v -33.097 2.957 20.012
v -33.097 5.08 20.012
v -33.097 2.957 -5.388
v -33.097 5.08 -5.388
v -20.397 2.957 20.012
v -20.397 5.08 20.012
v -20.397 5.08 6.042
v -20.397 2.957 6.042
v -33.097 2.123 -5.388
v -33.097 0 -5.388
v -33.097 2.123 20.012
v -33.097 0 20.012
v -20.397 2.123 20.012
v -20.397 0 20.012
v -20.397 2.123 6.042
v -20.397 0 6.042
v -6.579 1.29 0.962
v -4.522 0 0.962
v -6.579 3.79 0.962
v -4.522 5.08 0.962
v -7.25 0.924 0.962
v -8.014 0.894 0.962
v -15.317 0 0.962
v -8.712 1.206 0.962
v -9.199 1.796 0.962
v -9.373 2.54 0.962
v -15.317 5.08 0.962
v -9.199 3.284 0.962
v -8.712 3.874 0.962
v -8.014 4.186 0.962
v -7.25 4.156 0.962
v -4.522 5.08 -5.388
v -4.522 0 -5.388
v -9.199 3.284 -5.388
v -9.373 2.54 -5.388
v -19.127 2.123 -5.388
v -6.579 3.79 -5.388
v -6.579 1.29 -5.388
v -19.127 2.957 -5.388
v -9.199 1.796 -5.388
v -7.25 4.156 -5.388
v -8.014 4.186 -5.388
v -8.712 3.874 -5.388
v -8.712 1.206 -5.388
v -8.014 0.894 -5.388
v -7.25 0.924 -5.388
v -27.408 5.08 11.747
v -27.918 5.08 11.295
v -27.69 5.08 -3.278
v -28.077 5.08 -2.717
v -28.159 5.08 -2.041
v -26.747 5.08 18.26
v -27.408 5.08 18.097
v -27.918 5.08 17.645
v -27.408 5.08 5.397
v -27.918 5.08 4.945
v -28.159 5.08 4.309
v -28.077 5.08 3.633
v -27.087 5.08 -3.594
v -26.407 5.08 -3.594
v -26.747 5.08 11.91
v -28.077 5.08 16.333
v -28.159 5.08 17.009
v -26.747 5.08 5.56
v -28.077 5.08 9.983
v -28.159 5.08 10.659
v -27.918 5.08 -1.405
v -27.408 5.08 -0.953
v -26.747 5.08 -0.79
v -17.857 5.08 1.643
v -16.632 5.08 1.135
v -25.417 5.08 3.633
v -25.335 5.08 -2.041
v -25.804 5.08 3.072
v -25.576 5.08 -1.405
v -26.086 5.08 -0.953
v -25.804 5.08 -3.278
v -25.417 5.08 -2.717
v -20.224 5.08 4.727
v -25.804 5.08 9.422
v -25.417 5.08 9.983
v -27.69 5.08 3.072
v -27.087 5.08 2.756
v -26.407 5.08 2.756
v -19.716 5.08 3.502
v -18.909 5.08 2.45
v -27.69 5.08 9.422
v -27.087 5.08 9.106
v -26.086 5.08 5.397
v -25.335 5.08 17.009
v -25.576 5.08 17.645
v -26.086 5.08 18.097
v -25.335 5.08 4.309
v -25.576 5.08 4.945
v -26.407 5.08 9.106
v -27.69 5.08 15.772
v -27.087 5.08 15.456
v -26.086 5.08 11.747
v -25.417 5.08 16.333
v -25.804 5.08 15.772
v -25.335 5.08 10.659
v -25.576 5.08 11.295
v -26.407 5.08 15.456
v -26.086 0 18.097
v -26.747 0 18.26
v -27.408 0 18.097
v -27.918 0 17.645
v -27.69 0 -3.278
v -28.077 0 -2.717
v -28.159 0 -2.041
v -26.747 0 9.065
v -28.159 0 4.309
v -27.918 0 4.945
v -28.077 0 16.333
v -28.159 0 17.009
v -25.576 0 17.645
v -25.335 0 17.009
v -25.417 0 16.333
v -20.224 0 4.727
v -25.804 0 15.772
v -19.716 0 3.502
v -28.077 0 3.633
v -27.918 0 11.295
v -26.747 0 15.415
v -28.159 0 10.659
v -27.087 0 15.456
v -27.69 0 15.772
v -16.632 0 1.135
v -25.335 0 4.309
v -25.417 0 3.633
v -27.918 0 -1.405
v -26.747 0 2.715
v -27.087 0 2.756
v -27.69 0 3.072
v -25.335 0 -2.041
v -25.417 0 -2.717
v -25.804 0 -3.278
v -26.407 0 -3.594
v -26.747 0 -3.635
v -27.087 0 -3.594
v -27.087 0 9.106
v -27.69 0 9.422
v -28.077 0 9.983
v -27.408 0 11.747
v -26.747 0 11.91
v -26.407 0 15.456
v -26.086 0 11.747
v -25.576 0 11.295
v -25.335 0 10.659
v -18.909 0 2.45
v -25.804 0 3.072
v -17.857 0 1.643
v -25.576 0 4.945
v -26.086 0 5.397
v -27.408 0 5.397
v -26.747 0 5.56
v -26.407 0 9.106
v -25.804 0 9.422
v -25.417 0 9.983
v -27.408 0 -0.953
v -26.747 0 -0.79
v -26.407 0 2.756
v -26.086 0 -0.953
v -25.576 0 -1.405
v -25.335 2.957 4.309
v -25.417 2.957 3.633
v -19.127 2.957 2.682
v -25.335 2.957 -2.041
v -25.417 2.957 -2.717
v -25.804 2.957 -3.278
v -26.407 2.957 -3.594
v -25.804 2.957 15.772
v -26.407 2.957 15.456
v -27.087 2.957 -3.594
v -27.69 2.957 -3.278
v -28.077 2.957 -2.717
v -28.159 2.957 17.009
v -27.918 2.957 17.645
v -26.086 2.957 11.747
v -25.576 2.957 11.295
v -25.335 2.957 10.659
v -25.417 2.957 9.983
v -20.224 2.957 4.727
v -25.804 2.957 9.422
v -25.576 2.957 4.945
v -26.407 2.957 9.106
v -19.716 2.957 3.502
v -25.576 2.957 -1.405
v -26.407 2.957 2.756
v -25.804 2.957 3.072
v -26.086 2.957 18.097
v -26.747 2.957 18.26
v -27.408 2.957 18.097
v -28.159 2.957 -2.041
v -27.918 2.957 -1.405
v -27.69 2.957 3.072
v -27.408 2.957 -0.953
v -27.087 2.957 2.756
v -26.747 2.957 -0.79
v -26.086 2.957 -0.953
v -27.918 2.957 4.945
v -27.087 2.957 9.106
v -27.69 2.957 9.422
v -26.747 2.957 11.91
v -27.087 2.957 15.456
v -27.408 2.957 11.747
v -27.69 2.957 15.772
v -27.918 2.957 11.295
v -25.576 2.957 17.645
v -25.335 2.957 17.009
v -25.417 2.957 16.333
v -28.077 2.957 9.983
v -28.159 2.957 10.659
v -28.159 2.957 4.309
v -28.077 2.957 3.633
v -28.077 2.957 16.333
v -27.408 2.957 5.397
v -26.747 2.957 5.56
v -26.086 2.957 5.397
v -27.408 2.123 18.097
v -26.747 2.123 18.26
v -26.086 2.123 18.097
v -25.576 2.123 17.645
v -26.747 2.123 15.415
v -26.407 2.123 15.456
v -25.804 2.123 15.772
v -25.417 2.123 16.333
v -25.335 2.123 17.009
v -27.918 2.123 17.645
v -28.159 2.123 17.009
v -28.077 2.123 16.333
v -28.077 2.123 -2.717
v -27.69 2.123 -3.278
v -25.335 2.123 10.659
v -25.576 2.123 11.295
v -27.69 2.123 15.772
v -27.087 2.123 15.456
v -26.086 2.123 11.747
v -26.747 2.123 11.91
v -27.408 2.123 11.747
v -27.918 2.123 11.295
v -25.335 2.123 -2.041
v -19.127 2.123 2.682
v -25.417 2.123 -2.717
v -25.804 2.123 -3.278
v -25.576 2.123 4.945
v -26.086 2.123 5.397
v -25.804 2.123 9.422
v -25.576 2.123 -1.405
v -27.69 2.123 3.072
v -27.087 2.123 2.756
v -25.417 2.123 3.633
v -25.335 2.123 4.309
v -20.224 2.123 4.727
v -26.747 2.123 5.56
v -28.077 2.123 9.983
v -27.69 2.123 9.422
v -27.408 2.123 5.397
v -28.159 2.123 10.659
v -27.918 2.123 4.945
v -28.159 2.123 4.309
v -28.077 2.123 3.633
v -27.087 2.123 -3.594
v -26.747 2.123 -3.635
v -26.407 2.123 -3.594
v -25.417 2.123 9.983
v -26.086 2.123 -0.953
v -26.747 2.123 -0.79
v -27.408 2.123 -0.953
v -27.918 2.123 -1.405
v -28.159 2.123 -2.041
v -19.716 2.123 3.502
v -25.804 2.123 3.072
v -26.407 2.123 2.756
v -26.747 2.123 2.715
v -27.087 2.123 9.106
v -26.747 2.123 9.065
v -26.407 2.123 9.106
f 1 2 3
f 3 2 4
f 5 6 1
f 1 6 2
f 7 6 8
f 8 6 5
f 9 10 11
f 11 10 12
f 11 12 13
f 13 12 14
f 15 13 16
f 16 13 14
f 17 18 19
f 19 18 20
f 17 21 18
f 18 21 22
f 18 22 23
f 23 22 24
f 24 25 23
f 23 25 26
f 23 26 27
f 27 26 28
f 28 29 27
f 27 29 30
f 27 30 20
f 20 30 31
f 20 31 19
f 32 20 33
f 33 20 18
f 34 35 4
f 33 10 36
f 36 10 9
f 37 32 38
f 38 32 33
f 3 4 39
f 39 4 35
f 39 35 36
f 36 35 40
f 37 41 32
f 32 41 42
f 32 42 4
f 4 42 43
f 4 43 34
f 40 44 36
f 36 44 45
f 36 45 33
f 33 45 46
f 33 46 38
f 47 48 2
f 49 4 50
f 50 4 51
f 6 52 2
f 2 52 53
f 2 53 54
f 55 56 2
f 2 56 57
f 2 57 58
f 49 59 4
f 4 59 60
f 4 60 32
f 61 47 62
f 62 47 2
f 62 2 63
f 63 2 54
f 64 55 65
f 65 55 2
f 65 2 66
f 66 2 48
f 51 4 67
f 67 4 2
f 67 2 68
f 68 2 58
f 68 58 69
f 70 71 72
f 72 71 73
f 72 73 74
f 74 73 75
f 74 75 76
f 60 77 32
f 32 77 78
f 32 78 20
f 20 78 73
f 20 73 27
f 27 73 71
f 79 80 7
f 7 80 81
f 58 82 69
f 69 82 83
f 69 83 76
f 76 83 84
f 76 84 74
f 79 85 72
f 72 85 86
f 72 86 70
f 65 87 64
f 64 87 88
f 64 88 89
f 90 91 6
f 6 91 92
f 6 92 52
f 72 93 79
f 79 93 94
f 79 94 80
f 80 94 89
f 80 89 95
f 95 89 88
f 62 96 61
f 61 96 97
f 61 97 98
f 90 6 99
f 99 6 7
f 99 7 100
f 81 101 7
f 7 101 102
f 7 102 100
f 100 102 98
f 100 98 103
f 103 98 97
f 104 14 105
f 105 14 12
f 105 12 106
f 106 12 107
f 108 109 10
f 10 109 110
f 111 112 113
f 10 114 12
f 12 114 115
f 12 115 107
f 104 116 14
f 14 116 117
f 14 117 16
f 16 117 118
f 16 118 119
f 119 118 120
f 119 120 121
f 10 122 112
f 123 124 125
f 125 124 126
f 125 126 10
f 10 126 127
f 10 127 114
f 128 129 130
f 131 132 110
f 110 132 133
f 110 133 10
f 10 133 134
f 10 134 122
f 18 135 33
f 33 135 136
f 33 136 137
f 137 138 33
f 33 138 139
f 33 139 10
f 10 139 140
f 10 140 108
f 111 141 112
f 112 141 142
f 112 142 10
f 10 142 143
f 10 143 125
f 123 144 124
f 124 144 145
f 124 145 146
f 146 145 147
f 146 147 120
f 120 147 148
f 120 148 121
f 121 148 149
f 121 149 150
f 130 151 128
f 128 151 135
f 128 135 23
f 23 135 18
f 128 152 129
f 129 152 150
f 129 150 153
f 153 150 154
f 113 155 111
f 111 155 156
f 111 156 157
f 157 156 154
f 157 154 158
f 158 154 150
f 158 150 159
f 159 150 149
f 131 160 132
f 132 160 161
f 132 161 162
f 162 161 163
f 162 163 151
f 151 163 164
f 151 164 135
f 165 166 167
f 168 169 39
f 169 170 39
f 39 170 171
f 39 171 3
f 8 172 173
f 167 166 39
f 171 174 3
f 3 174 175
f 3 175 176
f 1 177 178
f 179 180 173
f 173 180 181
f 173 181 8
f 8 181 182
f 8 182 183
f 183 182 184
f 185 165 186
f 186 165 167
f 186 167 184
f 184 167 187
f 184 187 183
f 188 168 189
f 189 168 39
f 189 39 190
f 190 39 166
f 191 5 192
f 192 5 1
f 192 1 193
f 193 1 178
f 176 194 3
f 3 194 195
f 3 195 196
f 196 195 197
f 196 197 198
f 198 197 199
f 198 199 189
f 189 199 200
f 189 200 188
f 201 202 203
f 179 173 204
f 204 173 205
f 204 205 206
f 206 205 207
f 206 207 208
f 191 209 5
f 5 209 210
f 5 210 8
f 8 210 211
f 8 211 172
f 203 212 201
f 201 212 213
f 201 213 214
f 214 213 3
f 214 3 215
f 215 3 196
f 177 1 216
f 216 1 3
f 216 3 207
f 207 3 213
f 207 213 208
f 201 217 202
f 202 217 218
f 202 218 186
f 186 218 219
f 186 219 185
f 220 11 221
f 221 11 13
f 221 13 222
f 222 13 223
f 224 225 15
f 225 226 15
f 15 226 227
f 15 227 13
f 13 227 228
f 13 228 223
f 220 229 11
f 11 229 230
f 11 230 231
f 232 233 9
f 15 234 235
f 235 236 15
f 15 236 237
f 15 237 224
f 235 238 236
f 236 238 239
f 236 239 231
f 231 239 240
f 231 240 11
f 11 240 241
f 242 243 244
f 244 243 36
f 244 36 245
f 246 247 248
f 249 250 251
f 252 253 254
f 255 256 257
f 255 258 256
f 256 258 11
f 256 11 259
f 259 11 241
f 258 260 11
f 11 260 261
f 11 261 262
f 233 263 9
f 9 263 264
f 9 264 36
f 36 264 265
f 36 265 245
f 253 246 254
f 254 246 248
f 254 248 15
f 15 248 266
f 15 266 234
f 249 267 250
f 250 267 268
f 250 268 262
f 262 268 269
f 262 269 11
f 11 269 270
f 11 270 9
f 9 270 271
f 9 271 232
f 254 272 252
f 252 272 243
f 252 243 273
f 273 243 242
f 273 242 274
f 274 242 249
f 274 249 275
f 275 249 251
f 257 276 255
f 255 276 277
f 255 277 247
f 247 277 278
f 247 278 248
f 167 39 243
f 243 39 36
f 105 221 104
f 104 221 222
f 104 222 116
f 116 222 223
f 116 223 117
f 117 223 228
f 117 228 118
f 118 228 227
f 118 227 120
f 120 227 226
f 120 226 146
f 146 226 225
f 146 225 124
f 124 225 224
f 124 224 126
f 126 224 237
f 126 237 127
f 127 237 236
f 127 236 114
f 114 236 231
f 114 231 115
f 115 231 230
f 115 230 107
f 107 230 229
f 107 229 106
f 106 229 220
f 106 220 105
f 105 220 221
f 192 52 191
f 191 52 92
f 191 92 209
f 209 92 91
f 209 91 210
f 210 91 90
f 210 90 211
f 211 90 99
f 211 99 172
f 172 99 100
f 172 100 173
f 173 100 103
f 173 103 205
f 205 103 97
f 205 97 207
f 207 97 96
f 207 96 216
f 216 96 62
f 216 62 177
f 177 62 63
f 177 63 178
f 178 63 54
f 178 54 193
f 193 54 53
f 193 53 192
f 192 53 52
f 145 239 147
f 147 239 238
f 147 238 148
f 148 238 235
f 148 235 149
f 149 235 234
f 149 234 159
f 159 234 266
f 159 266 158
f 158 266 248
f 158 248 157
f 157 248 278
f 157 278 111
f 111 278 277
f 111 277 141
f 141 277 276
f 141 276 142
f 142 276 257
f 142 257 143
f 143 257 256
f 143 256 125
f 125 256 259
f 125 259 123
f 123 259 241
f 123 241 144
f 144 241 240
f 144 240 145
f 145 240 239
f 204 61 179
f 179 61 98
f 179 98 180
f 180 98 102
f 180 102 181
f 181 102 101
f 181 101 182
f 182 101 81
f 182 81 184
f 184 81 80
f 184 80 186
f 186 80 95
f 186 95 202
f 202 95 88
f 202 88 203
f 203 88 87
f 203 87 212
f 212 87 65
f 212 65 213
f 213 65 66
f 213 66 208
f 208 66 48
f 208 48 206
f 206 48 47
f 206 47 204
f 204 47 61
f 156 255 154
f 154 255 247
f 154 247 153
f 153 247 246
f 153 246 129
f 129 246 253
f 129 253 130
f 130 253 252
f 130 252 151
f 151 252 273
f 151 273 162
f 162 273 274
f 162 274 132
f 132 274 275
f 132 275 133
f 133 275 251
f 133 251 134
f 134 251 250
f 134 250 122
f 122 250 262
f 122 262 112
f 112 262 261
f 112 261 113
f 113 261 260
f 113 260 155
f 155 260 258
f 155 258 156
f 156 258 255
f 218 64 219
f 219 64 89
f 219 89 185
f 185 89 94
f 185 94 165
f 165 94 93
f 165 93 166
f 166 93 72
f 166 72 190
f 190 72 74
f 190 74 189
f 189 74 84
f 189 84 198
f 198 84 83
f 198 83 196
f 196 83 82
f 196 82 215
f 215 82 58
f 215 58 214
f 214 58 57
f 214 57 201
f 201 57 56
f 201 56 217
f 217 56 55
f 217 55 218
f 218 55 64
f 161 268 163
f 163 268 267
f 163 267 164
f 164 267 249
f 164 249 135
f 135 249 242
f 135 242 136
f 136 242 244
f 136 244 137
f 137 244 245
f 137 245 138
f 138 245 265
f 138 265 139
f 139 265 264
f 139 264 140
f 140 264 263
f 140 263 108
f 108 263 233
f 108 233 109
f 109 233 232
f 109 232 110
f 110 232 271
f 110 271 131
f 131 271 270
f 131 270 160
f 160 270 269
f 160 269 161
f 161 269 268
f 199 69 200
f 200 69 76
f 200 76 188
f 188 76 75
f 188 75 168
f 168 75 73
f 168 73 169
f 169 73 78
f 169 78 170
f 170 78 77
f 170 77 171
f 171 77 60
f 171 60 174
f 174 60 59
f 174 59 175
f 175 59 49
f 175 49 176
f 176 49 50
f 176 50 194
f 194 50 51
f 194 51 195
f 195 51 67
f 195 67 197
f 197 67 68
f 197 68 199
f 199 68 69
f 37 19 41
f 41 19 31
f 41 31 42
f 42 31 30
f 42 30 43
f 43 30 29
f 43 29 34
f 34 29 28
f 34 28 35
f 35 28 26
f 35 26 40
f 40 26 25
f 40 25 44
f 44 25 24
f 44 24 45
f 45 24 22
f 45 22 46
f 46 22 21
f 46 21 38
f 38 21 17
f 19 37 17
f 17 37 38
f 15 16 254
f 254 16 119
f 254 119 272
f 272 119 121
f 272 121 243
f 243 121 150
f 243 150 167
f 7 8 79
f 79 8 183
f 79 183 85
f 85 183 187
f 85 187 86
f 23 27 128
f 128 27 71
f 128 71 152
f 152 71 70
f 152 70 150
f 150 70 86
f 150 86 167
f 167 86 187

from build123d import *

# Parameters (mm, degrees)
BOSS_EXTRUDE1_DEPTH = 5.08
SKETCH2_W           = 25.4
SKETCH2_H           = 0.8334375
CUT_EXTRUDE1_DEPTH  = 13.97
SKETCH3_R           = 1.4224
CUT_EXTRUDE2_DEPTH  = 12.7
CUT_EXTRUDE3_DEPTH  = 12.7
FILLET3_R           = 5.08


with BuildPart() as part:
    # Sketch1 → Boss-Extrude1 (new body)
    with BuildSketch(Plane(origin=(0, 0, 0), x_dir=(1, 0, 0), z_dir=(0, 1, 0))):
        Polygon((-33.096969697, 5.387878788), (-20.396969697, 5.387878788), (-4.521969697, 5.387878788), (-4.521969697, -0.962121212), (-20.396969697, -0.962121212), (-20.396969697, -20.012121212), (-33.096969697, -20.012121212), align=None)
    extrude(amount=BOSS_EXTRUDE1_DEPTH)

    # Sketch2 → Cut-Extrude1 (cut)
    with BuildSketch(Plane.ZY.offset(33.096969697)):
        with Locations((7.312121212, 2.54)):
            Rectangle(SKETCH2_W, SKETCH2_H)
    extrude(amount=-CUT_EXTRUDE1_DEPTH, mode=Mode.SUBTRACT)

    # Sketch3 → Cut-Extrude2 (cut)
    with BuildSketch(Plane(origin=(0, 5.08, 0), x_dir=(1, 0, 0), z_dir=(0, 1, 0))):
        with Locations(Location((-26.746969697, -16.837121212, 0), (0, 0, 90))):
            Circle(SKETCH3_R)
        with Locations(Location((-26.746969697, -10.487121212, 0), (0, 0, 90))):
            Circle(SKETCH3_R)
        with Locations(Location((-26.746969697, -4.137121212, 0), (0, 0, 90))):
            Circle(SKETCH3_R)
        with Locations(Location((-26.746969697, 2.212878788, 0), (0, 0, 90))):
            Circle(SKETCH3_R)
    extrude(amount=-CUT_EXTRUDE2_DEPTH, mode=Mode.SUBTRACT)

    # Sketch5 → Cut-Extrude3 (cut)
    with BuildSketch(Plane.XY.offset(0.962121212)):
        with BuildLine():
            Line((-6.579369697, 1.290485214), (-6.579369697, 3.789514786))
            ThreePointArc((-6.579369697, 3.789514786), (-9.373369697, 2.54), (-6.579369697, 1.290485214))
        make_face()
    extrude(amount=-CUT_EXTRUDE3_DEPTH, mode=Mode.SUBTRACT)

    # Fillet3
    # the kernel refuses this fillet: 5.08 mm, written as the material it adds along each edge
    with BuildSketch(Plane(origin=(-20.396969697, -9.74328125, 0.962121212), x_dir=(1, 0, 0), z_dir=(0, 1, 0))) as fillet3_piece_1_section:
        with BuildLine():
            CenterArc((FILLET3_R, -FILLET3_R), FILLET3_R, 90, 90)
            Line((0, -FILLET3_R), (0, 0))
            Line((0, 0), (FILLET3_R, 0))
        make_face()
    fillet3_piece_1 = extrude(amount=14.82328125, mode=Mode.PRIVATE)
    fillet3_piece_1 = split(fillet3_piece_1, bisect_by=Plane(origin=(-18.050290176, 0, 1.370319311), z_dir=(0, 1, 0)), keep=Keep.TOP, mode=Mode.PRIVATE)
    fillet3_piece_1 = split(fillet3_piece_1, bisect_by=Plane(origin=(-18.050290176, 2.12328125, 1.370319311), z_dir=(0, -1, 0)), keep=Keep.TOP, mode=Mode.PRIVATE)
    fillet3_piece_1 = split(fillet3_piece_1, bisect_by=Plane(origin=(-19.126969697, 1.061640625, 1.370319311), z_dir=(1, 0, 0)), keep=Keep.TOP, mode=Mode.PRIVATE)
    add(fillet3_piece_1)
    with BuildSketch(Plane(origin=(-20.396969697, -9.74328125, 0.962121212), x_dir=(1, 0, 0), z_dir=(0, 1, 0))) as fillet3_piece_2_section:
        with BuildLine():
            CenterArc((FILLET3_R, -FILLET3_R), FILLET3_R, 90, 90)
            Line((0, -FILLET3_R), (0, 0))
            Line((0, 0), (FILLET3_R, 0))
        make_face()
    fillet3_piece_2 = extrude(amount=14.82328125, mode=Mode.PRIVATE)
    fillet3_piece_2 = split(fillet3_piece_2, bisect_by=Plane(origin=(-19.932991251, 0, 2.537596858), z_dir=(0, 1, 0)), keep=Keep.TOP, mode=Mode.PRIVATE)
    fillet3_piece_2 = split(fillet3_piece_2, bisect_by=Plane(origin=(-19.932991251, 2.12328125, 2.537596858), z_dir=(0, -1, 0)), keep=Keep.TOP, mode=Mode.PRIVATE)
    fillet3_piece_2 = split(fillet3_piece_2, bisect_by=Plane(origin=(-19.126969697, 1.061640625, 2.537596858), z_dir=(-1, 0, 0)), keep=Keep.TOP, mode=Mode.PRIVATE)
    add(fillet3_piece_2)
    with BuildSketch(Plane(origin=(-20.396969697, -9.74328125, 0.962121212), x_dir=(1, 0, 0), z_dir=(0, 1, 0))) as fillet3_piece_3_section:
        with BuildLine():
            CenterArc((FILLET3_R, -FILLET3_R), FILLET3_R, 90, 90)
            Line((0, -FILLET3_R), (0, 0))
            Line((0, 0), (FILLET3_R, 0))
        make_face()
    fillet3_piece_3 = extrude(amount=14.82328125, mode=Mode.PRIVATE)
    fillet3_piece_3 = split(fillet3_piece_3, bisect_by=Plane(origin=(-18.050290176, 2.12328125, 1.370319311), z_dir=(0, 1, 0)), keep=Keep.TOP, mode=Mode.PRIVATE)
    fillet3_piece_3 = split(fillet3_piece_3, bisect_by=Plane(origin=(-19.126969697, 2.54, 1.370319311), z_dir=(1, 0, 0)), keep=Keep.TOP, mode=Mode.PRIVATE)
    fillet3_piece_3 = split(fillet3_piece_3, bisect_by=Plane(origin=(-18.050290176, 2.95671875, 1.370319311), z_dir=(0, -1, 0)), keep=Keep.TOP, mode=Mode.PRIVATE)
    add(fillet3_piece_3)
    with BuildSketch(Plane(origin=(-20.396969697, 2.95671875, 0.962121212), x_dir=(1, 0, 0), z_dir=(0, 1, 0))) as fillet3_piece_4_section:
        with BuildLine():
            CenterArc((FILLET3_R, -FILLET3_R), FILLET3_R, 90, 90)
            Line((0, -FILLET3_R), (0, 0))
            Line((0, 0), (FILLET3_R, 0))
        make_face()
    fillet3_piece_4 = extrude(amount=2.12328125, mode=Mode.PRIVATE)
    fillet3_piece_4 = split(fillet3_piece_4, bisect_by=Plane(origin=(-19.126969697, 4.018359375, 1.370319311), z_dir=(1, 0, 0)), keep=Keep.TOP, mode=Mode.PRIVATE)
    add(fillet3_piece_4)
    with BuildSketch(Plane(origin=(-20.396969697, 2.95671875, 0.962121212), x_dir=(1, 0, 0), z_dir=(0, 1, 0))) as fillet3_piece_5_section:
        with BuildLine():
            CenterArc((FILLET3_R, -FILLET3_R), FILLET3_R, 90, 90)
            Line((0, -FILLET3_R), (0, 0))
            Line((0, 0), (FILLET3_R, 0))
        make_face()
    fillet3_piece_5 = extrude(amount=2.12328125, mode=Mode.PRIVATE)
    fillet3_piece_5 = split(fillet3_piece_5, bisect_by=Plane(origin=(-19.126969697, 4.018359375, 2.537596858), z_dir=(-1, 0, 0)), keep=Keep.TOP, mode=Mode.PRIVATE)
    add(fillet3_piece_5)
    with BuildSketch(Plane(origin=(-20.396969697, 0, 0.962121212), x_dir=(1, 0, 0), z_dir=(0, 1, 0))) as fillet3_piece_6_section:
        with BuildLine():
            CenterArc((FILLET3_R, -FILLET3_R), FILLET3_R, 90, 90)
            Line((0, -FILLET3_R), (0, 0))
            Line((0, 0), (FILLET3_R, 0))
        make_face()
    fillet3_piece_6 = extrude(amount=2.12328125, mode=Mode.PRIVATE)
    fillet3_piece_6 = split(fillet3_piece_6, bisect_by=Plane(origin=(-19.126969697, 1.061640625, 1.370319311), z_dir=(1, 0, 0)), keep=Keep.TOP, mode=Mode.PRIVATE)
    add(fillet3_piece_6)
    with BuildSketch(Plane(origin=(-20.396969697, 0, 0.962121212), x_dir=(1, 0, 0), z_dir=(0, 1, 0))) as fillet3_piece_7_section:
        with BuildLine():
            CenterArc((FILLET3_R, -FILLET3_R), FILLET3_R, 90, 90)
            Line((0, -FILLET3_R), (0, 0))
            Line((0, 0), (FILLET3_R, 0))
        make_face()
    fillet3_piece_7 = extrude(amount=2.12328125, mode=Mode.PRIVATE)
    fillet3_piece_7 = split(fillet3_piece_7, bisect_by=Plane(origin=(-19.126969697, 1.061640625, 2.537596858), z_dir=(-1, 0, 0)), keep=Keep.TOP, mode=Mode.PRIVATE)
    add(fillet3_piece_7)
    with BuildSketch(Plane(origin=(-20.396969697, 0, 0.962121212), x_dir=(1, 0, 0), z_dir=(0, 1, 0))) as fillet3_piece_8_section:
        with BuildLine():
            CenterArc((FILLET3_R, -FILLET3_R), FILLET3_R, 90, 90)
            Line((0, -FILLET3_R), (0, 0))
            Line((0, 0), (FILLET3_R, 0))
        make_face()
    fillet3_piece_8 = extrude(amount=14.82328125, mode=Mode.PRIVATE)
    fillet3_piece_8 = split(fillet3_piece_8, bisect_by=Plane(origin=(-18.050290176, 2.12328125, 1.370319311), z_dir=(0, 1, 0)), keep=Keep.TOP, mode=Mode.PRIVATE)
    fillet3_piece_8 = split(fillet3_piece_8, bisect_by=Plane(origin=(-19.126969697, 2.54, 1.370319311), z_dir=(1, 0, 0)), keep=Keep.TOP, mode=Mode.PRIVATE)
    fillet3_piece_8 = split(fillet3_piece_8, bisect_by=Plane(origin=(-18.050290176, 2.95671875, 1.370319311), z_dir=(0, -1, 0)), keep=Keep.TOP, mode=Mode.PRIVATE)
    add(fillet3_piece_8)
    with BuildSketch(Plane(origin=(-20.396969697, 0, 0.962121212), x_dir=(1, 0, 0), z_dir=(0, 1, 0))) as fillet3_piece_9_section:
        with BuildLine():
            CenterArc((FILLET3_R, -FILLET3_R), FILLET3_R, 90, 90)
            Line((0, -FILLET3_R), (0, 0))
            Line((0, 0), (FILLET3_R, 0))
        make_face()
    fillet3_piece_9 = extrude(amount=14.82328125, mode=Mode.PRIVATE)
    fillet3_piece_9 = split(fillet3_piece_9, bisect_by=Plane(origin=(-18.050290176, 5.08, 1.370319311), z_dir=(0, -1, 0)), keep=Keep.TOP, mode=Mode.PRIVATE)
    fillet3_piece_9 = split(fillet3_piece_9, bisect_by=Plane(origin=(-19.126969697, 4.018359375, 1.370319311), z_dir=(1, 0, 0)), keep=Keep.TOP, mode=Mode.PRIVATE)
    fillet3_piece_9 = split(fillet3_piece_9, bisect_by=Plane(origin=(-18.050290176, 2.95671875, 1.370319311), z_dir=(0, 1, 0)), keep=Keep.TOP, mode=Mode.PRIVATE)
    add(fillet3_piece_9)
    with BuildSketch(Plane(origin=(-20.396969697, 0, 0.962121212), x_dir=(1, 0, 0), z_dir=(0, 1, 0))) as fillet3_piece_10_section:
        with BuildLine():
            CenterArc((FILLET3_R, -FILLET3_R), FILLET3_R, 90, 90)
            Line((0, -FILLET3_R), (0, 0))
            Line((0, 0), (FILLET3_R, 0))
        make_face()
    fillet3_piece_10 = extrude(amount=14.82328125, mode=Mode.PRIVATE)
    fillet3_piece_10 = split(fillet3_piece_10, bisect_by=Plane(origin=(-19.932991251, 5.08, 2.537596858), z_dir=(0, -1, 0)), keep=Keep.TOP, mode=Mode.PRIVATE)
    fillet3_piece_10 = split(fillet3_piece_10, bisect_by=Plane(origin=(-19.126969697, 4.018359375, 2.537596858), z_dir=(-1, 0, 0)), keep=Keep.TOP, mode=Mode.PRIVATE)
    fillet3_piece_10 = split(fillet3_piece_10, bisect_by=Plane(origin=(-19.932991251, 2.95671875, 2.537596858), z_dir=(0, 1, 0)), keep=Keep.TOP, mode=Mode.PRIVATE)
    add(fillet3_piece_10)


solid = part.part
